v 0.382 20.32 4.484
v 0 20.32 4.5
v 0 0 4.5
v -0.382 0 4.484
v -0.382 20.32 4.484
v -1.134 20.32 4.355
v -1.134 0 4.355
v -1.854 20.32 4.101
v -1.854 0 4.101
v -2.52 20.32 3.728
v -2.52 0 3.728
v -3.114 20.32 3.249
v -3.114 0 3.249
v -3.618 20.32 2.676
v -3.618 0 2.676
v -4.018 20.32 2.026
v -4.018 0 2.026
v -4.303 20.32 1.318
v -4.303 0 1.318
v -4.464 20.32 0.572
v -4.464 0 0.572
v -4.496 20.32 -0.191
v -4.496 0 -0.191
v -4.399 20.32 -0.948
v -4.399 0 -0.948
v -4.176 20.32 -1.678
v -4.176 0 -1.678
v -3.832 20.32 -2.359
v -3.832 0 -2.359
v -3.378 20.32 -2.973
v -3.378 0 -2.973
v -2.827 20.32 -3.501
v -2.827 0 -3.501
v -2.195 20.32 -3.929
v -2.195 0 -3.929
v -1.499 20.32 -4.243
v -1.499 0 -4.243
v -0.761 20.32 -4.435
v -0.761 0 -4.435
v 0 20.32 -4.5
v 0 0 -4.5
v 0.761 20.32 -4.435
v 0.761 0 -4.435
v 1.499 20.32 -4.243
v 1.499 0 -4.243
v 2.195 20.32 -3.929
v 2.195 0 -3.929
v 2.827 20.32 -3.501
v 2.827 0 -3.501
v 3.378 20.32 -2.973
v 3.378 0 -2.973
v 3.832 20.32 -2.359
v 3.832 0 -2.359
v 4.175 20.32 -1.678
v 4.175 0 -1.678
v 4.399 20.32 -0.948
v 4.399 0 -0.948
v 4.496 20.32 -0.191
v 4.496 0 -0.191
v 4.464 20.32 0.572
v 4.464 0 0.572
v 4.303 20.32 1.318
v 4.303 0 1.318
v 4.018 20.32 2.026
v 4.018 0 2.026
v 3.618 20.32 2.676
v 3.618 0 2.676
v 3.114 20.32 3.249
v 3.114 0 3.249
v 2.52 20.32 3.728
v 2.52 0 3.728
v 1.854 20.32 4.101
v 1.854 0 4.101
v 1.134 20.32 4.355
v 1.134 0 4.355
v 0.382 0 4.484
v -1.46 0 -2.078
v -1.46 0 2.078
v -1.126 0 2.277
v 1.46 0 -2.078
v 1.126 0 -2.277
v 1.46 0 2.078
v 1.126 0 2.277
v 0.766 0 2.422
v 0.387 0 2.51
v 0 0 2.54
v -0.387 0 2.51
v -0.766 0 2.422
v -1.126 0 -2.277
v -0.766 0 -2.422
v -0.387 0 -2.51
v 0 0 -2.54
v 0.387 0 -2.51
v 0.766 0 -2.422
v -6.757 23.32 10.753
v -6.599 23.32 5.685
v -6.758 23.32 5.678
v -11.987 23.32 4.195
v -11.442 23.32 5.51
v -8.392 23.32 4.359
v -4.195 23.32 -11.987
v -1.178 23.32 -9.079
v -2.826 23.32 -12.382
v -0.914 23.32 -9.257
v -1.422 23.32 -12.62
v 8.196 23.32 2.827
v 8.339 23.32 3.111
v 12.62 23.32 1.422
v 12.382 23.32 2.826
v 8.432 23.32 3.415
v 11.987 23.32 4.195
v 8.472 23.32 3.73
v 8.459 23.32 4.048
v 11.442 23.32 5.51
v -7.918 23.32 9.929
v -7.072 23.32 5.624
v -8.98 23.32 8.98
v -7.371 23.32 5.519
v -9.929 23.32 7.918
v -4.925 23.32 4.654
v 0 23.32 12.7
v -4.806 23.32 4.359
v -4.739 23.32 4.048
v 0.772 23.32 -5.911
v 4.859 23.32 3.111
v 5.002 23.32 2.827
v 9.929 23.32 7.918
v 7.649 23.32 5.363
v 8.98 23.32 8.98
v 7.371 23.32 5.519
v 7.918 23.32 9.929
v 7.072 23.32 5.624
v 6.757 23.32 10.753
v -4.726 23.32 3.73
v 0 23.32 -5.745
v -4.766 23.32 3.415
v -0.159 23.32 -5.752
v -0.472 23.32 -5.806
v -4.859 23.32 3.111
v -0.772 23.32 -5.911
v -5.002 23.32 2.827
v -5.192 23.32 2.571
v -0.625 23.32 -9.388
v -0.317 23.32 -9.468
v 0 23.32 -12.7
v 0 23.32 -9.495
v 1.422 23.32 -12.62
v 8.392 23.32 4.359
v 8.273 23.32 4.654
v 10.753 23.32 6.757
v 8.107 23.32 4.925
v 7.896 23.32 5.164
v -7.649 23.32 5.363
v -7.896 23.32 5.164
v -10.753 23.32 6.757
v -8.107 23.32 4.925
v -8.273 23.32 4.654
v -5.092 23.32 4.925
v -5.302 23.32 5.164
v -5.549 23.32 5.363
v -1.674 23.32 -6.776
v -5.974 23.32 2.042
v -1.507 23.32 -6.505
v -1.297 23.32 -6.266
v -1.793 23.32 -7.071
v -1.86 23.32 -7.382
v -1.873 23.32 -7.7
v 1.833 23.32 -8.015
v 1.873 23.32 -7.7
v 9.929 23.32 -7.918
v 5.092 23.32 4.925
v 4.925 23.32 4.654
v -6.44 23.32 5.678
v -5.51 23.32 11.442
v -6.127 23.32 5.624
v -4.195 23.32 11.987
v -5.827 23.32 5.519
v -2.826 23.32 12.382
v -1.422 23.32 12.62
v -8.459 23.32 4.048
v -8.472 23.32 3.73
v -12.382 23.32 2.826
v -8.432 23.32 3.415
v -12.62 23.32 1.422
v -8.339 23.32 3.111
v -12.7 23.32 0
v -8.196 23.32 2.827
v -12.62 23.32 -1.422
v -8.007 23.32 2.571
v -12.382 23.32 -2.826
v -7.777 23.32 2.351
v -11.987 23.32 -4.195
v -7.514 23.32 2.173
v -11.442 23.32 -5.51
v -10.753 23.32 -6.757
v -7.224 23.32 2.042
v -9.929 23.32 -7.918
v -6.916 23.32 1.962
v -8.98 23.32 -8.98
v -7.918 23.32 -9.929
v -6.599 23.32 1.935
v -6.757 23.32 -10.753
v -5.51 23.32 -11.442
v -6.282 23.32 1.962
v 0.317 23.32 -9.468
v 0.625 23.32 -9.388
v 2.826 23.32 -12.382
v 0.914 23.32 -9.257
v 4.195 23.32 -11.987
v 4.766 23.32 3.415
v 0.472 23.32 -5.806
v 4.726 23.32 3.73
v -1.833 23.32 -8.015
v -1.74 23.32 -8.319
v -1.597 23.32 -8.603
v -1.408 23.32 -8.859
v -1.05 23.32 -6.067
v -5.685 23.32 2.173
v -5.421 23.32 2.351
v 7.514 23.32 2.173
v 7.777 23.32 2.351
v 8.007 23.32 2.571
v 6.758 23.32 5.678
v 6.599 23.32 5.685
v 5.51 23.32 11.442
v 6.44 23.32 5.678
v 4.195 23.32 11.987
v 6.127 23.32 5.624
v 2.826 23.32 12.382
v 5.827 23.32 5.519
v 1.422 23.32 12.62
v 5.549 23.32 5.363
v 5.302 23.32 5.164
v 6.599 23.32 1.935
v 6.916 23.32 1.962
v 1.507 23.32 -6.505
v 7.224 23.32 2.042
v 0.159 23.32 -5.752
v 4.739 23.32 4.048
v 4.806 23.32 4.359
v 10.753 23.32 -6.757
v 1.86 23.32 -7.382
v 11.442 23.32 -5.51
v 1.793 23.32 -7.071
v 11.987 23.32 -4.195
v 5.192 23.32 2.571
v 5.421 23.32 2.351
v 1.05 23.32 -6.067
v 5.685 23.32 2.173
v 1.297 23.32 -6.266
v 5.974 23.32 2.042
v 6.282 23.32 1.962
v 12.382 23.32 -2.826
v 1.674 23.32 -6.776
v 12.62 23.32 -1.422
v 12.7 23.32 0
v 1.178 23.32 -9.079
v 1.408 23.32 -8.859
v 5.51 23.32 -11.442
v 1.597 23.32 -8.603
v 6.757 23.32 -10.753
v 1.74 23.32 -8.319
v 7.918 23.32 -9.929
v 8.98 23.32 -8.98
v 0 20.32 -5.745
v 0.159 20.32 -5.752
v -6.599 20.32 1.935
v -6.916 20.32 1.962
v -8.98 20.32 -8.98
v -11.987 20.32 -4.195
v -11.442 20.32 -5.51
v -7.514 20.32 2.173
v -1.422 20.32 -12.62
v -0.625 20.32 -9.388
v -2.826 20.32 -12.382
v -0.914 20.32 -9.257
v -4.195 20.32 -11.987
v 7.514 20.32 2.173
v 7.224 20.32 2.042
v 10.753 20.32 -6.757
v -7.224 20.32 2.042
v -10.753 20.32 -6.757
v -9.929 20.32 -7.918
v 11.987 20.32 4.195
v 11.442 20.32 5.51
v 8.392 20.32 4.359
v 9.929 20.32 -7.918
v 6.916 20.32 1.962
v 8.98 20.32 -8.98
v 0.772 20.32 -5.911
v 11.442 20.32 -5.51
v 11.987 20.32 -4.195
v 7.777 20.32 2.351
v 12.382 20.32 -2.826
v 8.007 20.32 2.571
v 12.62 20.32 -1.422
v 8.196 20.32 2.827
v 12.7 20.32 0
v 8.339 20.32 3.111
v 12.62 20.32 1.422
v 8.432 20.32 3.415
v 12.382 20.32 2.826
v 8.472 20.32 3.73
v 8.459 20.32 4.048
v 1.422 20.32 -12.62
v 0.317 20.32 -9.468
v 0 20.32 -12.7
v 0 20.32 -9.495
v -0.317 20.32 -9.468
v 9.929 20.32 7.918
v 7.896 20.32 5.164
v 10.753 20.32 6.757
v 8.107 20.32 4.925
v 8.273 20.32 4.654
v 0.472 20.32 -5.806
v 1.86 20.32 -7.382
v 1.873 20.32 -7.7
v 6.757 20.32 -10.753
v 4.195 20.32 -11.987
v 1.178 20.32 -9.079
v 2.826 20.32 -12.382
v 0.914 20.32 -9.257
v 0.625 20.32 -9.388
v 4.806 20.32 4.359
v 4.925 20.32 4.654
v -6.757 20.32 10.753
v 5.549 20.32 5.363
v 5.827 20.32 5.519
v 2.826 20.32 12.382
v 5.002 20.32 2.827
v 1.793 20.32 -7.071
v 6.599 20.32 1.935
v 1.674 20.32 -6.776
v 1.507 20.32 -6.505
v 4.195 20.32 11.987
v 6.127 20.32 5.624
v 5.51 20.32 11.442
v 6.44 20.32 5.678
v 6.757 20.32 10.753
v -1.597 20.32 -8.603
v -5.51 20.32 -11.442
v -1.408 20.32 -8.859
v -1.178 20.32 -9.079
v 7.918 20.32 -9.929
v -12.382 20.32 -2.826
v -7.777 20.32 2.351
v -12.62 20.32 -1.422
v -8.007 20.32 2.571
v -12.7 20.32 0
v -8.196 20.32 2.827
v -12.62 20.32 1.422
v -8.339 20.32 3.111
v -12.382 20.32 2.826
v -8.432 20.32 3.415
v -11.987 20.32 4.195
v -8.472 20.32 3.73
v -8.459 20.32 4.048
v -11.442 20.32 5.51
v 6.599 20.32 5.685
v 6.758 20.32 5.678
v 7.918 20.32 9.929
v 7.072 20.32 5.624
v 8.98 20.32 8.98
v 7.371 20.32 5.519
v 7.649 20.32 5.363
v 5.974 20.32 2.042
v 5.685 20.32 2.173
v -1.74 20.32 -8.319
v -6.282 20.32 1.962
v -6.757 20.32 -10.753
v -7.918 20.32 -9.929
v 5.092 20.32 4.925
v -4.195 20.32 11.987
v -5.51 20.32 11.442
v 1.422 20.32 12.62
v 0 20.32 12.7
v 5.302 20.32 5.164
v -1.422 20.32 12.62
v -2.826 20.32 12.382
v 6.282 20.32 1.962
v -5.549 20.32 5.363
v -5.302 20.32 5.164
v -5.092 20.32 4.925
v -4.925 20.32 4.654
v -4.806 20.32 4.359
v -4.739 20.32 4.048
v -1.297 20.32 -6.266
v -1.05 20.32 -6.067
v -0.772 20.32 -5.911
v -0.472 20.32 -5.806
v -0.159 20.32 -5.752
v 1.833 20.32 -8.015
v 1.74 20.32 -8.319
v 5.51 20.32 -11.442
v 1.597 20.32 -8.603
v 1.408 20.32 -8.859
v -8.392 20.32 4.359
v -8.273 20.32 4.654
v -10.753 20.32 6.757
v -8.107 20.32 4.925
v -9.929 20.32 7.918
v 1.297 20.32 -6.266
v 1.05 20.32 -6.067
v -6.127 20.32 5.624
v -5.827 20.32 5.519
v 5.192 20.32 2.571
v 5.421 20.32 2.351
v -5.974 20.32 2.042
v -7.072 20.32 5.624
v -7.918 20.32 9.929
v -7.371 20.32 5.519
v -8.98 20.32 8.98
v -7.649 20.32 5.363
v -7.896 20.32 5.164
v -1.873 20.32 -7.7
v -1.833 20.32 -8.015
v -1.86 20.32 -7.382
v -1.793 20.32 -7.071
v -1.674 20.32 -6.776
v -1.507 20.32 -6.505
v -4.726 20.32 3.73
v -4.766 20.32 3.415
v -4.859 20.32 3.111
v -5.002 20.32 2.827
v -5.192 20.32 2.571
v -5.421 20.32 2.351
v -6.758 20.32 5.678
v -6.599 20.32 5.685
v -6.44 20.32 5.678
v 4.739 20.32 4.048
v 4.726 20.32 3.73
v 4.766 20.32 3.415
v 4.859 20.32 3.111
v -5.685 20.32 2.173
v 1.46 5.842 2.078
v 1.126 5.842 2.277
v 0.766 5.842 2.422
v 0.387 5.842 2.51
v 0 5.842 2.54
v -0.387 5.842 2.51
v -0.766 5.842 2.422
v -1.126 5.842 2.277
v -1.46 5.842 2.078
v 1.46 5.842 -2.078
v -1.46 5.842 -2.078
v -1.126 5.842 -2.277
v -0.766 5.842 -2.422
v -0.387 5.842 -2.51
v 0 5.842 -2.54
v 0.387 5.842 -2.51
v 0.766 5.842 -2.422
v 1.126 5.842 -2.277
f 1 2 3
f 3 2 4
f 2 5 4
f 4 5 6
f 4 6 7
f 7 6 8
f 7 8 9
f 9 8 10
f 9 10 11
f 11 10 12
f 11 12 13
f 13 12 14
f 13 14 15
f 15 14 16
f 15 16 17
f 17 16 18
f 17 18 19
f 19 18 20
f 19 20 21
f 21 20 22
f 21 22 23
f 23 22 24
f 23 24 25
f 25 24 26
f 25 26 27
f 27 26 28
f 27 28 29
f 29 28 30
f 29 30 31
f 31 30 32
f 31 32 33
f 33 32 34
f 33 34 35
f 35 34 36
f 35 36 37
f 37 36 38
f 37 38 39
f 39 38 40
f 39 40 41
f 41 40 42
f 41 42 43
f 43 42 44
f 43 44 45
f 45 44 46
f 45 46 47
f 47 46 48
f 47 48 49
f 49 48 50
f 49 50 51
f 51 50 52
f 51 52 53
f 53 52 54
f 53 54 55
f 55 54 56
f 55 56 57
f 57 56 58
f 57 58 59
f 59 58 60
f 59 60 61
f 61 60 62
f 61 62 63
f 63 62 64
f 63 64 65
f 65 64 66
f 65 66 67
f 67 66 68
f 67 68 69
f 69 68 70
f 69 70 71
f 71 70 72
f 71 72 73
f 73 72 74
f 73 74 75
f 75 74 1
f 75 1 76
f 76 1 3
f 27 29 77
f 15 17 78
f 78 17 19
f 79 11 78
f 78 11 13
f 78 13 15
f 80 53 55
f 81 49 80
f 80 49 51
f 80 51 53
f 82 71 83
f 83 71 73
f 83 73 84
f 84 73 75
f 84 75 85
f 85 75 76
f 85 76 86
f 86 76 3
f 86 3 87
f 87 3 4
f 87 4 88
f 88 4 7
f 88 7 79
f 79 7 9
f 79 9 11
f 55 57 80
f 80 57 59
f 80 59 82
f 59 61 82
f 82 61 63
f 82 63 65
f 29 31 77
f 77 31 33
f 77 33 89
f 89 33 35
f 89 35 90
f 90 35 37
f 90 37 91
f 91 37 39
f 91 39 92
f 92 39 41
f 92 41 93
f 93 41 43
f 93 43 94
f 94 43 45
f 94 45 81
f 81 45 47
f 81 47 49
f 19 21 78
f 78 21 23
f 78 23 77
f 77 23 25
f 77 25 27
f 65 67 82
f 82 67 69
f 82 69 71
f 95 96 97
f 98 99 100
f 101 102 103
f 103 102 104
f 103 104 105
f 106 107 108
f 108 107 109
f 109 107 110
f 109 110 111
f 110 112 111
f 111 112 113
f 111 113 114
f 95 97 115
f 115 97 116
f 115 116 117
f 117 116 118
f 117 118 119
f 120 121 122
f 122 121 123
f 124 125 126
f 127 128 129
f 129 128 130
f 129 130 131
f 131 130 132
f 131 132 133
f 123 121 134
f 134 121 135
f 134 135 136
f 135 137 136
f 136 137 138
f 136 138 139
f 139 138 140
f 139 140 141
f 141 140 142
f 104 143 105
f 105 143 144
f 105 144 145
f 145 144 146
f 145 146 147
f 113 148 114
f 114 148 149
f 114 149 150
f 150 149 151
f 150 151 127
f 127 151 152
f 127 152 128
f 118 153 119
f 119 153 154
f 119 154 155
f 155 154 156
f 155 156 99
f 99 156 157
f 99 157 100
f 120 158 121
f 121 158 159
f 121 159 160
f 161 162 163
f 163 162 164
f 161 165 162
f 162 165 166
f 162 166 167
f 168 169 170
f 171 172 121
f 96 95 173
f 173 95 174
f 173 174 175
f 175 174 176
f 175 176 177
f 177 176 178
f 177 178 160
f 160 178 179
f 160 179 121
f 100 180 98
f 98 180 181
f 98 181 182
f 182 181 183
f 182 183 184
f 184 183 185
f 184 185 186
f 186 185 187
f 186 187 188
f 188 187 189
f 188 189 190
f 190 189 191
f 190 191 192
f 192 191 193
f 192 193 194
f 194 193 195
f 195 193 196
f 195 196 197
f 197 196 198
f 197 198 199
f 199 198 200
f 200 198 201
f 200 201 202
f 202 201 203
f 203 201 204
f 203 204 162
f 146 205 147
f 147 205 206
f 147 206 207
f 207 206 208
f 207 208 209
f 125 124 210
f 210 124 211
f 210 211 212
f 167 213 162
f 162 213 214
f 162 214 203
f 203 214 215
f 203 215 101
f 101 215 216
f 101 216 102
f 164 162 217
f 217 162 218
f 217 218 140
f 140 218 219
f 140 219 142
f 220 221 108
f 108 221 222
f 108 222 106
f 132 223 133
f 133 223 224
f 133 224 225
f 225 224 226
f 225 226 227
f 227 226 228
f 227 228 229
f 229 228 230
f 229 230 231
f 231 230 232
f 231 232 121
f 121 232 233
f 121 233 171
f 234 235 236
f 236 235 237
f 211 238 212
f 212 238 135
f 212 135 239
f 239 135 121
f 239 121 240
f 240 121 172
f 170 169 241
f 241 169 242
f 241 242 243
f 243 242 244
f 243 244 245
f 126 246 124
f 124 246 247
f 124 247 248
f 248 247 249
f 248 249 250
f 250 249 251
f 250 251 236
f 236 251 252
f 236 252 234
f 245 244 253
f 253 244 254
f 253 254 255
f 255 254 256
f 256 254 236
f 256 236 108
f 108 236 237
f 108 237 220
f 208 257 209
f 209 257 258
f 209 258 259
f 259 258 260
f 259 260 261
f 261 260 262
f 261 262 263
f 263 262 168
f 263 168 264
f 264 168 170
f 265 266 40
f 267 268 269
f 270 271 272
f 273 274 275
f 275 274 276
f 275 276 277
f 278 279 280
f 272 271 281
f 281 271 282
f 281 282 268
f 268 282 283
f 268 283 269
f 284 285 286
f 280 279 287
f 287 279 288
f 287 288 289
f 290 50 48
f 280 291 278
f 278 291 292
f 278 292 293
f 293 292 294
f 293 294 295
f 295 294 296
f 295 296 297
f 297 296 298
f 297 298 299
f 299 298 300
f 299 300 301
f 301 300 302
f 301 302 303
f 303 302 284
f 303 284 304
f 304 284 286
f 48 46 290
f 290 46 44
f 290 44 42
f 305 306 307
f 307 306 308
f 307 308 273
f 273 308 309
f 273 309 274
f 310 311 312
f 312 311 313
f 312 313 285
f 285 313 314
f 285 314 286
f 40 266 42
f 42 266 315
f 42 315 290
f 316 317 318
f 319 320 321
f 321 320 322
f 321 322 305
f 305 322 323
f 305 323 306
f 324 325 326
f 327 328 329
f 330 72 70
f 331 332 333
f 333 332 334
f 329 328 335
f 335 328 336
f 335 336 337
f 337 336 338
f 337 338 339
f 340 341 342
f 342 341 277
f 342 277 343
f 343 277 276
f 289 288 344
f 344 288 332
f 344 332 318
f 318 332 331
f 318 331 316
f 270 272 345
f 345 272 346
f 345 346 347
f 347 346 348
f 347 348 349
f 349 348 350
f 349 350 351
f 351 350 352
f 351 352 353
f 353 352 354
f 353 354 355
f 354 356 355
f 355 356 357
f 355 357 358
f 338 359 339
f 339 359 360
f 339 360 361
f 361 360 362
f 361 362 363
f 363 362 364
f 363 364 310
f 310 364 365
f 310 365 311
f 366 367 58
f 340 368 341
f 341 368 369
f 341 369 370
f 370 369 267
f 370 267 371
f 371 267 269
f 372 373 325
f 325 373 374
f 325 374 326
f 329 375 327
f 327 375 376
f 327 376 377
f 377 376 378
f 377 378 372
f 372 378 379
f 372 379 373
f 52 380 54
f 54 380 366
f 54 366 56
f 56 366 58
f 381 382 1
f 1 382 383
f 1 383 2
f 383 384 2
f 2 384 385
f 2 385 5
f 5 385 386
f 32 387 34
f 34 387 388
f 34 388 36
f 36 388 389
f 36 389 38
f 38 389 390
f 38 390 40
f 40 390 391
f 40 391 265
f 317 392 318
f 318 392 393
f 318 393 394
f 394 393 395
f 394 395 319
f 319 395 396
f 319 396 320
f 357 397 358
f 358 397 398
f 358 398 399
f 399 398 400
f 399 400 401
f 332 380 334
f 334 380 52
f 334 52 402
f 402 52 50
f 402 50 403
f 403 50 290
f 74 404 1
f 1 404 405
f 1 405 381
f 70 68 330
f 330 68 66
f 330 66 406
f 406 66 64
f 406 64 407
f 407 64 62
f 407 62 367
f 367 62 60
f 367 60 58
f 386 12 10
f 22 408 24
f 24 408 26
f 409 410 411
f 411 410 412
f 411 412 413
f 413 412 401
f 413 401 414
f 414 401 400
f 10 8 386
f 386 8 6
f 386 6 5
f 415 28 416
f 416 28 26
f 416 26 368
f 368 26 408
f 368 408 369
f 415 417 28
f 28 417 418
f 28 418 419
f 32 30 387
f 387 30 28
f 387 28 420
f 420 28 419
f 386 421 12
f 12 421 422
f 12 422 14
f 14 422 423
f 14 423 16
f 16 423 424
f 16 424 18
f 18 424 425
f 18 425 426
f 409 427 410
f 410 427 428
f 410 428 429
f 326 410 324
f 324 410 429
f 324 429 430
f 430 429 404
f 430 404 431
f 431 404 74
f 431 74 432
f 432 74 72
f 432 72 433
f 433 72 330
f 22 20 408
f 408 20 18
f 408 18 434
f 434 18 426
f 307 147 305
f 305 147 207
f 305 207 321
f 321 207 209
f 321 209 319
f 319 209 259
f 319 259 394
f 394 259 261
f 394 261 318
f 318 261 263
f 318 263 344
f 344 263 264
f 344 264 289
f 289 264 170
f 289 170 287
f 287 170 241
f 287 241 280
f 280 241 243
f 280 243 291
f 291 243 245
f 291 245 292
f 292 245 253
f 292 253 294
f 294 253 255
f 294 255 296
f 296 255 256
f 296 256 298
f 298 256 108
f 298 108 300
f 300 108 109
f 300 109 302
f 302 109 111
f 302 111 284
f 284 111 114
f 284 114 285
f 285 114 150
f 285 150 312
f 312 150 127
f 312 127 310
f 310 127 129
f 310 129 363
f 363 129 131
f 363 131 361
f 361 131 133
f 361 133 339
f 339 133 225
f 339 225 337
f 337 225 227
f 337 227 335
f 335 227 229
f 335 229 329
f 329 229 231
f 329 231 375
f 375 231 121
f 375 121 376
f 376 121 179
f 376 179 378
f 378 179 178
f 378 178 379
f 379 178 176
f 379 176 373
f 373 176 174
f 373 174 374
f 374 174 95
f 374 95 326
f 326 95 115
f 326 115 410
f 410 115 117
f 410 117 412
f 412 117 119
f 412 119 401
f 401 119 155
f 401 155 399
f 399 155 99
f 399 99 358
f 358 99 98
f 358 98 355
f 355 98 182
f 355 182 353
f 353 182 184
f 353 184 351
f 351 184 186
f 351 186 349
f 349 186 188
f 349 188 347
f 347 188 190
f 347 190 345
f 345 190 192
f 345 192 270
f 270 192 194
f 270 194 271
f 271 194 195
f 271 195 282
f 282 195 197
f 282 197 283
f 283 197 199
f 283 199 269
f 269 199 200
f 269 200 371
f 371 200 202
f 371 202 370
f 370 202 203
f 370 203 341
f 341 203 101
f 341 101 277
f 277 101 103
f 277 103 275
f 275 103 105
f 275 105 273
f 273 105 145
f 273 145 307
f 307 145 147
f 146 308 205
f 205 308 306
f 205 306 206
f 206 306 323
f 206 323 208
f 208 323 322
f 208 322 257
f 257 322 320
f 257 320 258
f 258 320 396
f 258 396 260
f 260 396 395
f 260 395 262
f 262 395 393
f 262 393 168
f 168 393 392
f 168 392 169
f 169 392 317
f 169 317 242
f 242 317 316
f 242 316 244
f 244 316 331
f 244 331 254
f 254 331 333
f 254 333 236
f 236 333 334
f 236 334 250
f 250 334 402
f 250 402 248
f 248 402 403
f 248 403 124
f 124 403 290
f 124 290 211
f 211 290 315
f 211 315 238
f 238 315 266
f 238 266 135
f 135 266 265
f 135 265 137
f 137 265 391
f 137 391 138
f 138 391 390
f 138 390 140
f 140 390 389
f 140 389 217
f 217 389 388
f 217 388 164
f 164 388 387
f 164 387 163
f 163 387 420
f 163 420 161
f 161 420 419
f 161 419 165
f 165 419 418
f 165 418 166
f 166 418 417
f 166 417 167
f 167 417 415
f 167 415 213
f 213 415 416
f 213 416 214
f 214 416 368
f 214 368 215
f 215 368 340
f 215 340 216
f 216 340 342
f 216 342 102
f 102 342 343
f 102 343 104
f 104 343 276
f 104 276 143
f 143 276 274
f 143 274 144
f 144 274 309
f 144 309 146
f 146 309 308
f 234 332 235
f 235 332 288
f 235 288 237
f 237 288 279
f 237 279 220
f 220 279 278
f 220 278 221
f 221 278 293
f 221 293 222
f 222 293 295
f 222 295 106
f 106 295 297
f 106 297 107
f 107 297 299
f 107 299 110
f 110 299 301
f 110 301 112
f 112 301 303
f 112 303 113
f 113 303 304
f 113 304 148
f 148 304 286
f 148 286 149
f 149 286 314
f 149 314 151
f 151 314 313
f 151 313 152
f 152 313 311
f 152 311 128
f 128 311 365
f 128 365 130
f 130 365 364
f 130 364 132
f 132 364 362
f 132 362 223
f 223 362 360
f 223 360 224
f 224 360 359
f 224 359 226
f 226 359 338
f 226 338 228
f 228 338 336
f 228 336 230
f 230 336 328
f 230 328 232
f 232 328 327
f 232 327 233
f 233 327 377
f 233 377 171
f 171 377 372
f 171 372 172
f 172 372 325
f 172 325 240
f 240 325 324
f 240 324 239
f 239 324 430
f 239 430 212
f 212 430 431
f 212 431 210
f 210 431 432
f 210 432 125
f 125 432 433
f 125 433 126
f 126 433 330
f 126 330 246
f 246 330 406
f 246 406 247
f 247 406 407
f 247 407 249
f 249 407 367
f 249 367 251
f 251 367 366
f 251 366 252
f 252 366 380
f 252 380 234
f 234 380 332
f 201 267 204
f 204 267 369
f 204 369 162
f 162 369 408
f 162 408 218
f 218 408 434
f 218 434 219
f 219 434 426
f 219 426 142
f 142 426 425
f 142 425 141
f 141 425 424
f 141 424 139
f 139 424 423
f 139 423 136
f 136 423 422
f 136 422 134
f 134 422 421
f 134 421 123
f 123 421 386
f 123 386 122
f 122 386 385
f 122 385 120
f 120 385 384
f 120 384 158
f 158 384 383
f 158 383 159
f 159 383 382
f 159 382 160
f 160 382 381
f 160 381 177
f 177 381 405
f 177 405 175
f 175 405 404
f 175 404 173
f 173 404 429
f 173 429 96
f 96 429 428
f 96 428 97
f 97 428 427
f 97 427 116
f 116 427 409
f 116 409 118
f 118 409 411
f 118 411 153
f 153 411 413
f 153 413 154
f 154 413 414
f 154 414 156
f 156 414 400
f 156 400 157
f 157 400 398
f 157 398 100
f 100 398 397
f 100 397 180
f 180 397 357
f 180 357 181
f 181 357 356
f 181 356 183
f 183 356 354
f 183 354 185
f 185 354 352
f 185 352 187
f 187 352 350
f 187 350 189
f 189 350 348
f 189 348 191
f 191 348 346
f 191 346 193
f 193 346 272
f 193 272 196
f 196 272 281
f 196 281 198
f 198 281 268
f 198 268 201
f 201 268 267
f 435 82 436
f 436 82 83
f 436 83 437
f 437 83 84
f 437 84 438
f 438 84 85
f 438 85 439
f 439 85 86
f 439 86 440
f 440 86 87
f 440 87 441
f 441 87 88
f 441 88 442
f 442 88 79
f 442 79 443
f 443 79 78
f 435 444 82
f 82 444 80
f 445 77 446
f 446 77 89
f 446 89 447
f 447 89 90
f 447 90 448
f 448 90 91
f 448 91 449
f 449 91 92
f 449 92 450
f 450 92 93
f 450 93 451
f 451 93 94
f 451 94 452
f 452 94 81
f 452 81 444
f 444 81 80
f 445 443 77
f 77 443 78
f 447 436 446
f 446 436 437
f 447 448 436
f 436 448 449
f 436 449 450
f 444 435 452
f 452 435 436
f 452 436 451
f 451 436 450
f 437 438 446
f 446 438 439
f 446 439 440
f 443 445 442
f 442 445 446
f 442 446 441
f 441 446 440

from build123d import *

# Parameters (mm, degrees)
SKETCH1_R           = 4.5
BOSS_EXTRUDE1_DEPTH = 20.32
SKETCH2_R           = 12.7
SKETCH2_R_2         = 1.875
BOSS_EXTRUDE2_DEPTH = 3
CUT_EXTRUDE1_DEPTH  = 5.842


with BuildPart() as part:
    # Sketch1 → Boss-Extrude1 (new body)
    with BuildSketch(Plane(origin=(0, 0, 0), x_dir=(1, 0, 0), z_dir=(0, 1, 0))):
        Circle(SKETCH1_R)
    extrude(amount=BOSS_EXTRUDE1_DEPTH)

    # Sketch2 → Boss-Extrude2 (add)
    with BuildSketch(Plane(origin=(0, 20.32, 0), x_dir=(1, 0, 0), z_dir=(0, 1, 0))):
        Circle(SKETCH2_R)
        with Locations((0, 7.62)):
            Circle(SKETCH2_R_2, mode=Mode.SUBTRACT)
        with Locations((6.599113577, -3.81)):
            Circle(SKETCH2_R_2, mode=Mode.SUBTRACT)
        with Locations((-6.599113577, -3.81)):
            Circle(SKETCH2_R_2, mode=Mode.SUBTRACT)
    extrude(amount=BOSS_EXTRUDE2_DEPTH)

    # Sketch3 → Cut-Extrude1 (cut)
    with BuildSketch(Plane.XZ):
        with BuildLine():
            Line((1.4605, 2.078109658), (1.4605, -2.078109658))
            ThreePointArc((1.4605, -2.078109658), (0, -2.54), (-1.4605, -2.078109658))
            Line((-1.4605, -2.078109658), (-1.4605, 2.078109658))
            ThreePointArc((-1.4605, 2.078109658), (0, 2.54), (1.4605, 2.078109658))
        make_face()
    extrude(amount=-CUT_EXTRUDE1_DEPTH, mode=Mode.SUBTRACT)


solid = part.part
